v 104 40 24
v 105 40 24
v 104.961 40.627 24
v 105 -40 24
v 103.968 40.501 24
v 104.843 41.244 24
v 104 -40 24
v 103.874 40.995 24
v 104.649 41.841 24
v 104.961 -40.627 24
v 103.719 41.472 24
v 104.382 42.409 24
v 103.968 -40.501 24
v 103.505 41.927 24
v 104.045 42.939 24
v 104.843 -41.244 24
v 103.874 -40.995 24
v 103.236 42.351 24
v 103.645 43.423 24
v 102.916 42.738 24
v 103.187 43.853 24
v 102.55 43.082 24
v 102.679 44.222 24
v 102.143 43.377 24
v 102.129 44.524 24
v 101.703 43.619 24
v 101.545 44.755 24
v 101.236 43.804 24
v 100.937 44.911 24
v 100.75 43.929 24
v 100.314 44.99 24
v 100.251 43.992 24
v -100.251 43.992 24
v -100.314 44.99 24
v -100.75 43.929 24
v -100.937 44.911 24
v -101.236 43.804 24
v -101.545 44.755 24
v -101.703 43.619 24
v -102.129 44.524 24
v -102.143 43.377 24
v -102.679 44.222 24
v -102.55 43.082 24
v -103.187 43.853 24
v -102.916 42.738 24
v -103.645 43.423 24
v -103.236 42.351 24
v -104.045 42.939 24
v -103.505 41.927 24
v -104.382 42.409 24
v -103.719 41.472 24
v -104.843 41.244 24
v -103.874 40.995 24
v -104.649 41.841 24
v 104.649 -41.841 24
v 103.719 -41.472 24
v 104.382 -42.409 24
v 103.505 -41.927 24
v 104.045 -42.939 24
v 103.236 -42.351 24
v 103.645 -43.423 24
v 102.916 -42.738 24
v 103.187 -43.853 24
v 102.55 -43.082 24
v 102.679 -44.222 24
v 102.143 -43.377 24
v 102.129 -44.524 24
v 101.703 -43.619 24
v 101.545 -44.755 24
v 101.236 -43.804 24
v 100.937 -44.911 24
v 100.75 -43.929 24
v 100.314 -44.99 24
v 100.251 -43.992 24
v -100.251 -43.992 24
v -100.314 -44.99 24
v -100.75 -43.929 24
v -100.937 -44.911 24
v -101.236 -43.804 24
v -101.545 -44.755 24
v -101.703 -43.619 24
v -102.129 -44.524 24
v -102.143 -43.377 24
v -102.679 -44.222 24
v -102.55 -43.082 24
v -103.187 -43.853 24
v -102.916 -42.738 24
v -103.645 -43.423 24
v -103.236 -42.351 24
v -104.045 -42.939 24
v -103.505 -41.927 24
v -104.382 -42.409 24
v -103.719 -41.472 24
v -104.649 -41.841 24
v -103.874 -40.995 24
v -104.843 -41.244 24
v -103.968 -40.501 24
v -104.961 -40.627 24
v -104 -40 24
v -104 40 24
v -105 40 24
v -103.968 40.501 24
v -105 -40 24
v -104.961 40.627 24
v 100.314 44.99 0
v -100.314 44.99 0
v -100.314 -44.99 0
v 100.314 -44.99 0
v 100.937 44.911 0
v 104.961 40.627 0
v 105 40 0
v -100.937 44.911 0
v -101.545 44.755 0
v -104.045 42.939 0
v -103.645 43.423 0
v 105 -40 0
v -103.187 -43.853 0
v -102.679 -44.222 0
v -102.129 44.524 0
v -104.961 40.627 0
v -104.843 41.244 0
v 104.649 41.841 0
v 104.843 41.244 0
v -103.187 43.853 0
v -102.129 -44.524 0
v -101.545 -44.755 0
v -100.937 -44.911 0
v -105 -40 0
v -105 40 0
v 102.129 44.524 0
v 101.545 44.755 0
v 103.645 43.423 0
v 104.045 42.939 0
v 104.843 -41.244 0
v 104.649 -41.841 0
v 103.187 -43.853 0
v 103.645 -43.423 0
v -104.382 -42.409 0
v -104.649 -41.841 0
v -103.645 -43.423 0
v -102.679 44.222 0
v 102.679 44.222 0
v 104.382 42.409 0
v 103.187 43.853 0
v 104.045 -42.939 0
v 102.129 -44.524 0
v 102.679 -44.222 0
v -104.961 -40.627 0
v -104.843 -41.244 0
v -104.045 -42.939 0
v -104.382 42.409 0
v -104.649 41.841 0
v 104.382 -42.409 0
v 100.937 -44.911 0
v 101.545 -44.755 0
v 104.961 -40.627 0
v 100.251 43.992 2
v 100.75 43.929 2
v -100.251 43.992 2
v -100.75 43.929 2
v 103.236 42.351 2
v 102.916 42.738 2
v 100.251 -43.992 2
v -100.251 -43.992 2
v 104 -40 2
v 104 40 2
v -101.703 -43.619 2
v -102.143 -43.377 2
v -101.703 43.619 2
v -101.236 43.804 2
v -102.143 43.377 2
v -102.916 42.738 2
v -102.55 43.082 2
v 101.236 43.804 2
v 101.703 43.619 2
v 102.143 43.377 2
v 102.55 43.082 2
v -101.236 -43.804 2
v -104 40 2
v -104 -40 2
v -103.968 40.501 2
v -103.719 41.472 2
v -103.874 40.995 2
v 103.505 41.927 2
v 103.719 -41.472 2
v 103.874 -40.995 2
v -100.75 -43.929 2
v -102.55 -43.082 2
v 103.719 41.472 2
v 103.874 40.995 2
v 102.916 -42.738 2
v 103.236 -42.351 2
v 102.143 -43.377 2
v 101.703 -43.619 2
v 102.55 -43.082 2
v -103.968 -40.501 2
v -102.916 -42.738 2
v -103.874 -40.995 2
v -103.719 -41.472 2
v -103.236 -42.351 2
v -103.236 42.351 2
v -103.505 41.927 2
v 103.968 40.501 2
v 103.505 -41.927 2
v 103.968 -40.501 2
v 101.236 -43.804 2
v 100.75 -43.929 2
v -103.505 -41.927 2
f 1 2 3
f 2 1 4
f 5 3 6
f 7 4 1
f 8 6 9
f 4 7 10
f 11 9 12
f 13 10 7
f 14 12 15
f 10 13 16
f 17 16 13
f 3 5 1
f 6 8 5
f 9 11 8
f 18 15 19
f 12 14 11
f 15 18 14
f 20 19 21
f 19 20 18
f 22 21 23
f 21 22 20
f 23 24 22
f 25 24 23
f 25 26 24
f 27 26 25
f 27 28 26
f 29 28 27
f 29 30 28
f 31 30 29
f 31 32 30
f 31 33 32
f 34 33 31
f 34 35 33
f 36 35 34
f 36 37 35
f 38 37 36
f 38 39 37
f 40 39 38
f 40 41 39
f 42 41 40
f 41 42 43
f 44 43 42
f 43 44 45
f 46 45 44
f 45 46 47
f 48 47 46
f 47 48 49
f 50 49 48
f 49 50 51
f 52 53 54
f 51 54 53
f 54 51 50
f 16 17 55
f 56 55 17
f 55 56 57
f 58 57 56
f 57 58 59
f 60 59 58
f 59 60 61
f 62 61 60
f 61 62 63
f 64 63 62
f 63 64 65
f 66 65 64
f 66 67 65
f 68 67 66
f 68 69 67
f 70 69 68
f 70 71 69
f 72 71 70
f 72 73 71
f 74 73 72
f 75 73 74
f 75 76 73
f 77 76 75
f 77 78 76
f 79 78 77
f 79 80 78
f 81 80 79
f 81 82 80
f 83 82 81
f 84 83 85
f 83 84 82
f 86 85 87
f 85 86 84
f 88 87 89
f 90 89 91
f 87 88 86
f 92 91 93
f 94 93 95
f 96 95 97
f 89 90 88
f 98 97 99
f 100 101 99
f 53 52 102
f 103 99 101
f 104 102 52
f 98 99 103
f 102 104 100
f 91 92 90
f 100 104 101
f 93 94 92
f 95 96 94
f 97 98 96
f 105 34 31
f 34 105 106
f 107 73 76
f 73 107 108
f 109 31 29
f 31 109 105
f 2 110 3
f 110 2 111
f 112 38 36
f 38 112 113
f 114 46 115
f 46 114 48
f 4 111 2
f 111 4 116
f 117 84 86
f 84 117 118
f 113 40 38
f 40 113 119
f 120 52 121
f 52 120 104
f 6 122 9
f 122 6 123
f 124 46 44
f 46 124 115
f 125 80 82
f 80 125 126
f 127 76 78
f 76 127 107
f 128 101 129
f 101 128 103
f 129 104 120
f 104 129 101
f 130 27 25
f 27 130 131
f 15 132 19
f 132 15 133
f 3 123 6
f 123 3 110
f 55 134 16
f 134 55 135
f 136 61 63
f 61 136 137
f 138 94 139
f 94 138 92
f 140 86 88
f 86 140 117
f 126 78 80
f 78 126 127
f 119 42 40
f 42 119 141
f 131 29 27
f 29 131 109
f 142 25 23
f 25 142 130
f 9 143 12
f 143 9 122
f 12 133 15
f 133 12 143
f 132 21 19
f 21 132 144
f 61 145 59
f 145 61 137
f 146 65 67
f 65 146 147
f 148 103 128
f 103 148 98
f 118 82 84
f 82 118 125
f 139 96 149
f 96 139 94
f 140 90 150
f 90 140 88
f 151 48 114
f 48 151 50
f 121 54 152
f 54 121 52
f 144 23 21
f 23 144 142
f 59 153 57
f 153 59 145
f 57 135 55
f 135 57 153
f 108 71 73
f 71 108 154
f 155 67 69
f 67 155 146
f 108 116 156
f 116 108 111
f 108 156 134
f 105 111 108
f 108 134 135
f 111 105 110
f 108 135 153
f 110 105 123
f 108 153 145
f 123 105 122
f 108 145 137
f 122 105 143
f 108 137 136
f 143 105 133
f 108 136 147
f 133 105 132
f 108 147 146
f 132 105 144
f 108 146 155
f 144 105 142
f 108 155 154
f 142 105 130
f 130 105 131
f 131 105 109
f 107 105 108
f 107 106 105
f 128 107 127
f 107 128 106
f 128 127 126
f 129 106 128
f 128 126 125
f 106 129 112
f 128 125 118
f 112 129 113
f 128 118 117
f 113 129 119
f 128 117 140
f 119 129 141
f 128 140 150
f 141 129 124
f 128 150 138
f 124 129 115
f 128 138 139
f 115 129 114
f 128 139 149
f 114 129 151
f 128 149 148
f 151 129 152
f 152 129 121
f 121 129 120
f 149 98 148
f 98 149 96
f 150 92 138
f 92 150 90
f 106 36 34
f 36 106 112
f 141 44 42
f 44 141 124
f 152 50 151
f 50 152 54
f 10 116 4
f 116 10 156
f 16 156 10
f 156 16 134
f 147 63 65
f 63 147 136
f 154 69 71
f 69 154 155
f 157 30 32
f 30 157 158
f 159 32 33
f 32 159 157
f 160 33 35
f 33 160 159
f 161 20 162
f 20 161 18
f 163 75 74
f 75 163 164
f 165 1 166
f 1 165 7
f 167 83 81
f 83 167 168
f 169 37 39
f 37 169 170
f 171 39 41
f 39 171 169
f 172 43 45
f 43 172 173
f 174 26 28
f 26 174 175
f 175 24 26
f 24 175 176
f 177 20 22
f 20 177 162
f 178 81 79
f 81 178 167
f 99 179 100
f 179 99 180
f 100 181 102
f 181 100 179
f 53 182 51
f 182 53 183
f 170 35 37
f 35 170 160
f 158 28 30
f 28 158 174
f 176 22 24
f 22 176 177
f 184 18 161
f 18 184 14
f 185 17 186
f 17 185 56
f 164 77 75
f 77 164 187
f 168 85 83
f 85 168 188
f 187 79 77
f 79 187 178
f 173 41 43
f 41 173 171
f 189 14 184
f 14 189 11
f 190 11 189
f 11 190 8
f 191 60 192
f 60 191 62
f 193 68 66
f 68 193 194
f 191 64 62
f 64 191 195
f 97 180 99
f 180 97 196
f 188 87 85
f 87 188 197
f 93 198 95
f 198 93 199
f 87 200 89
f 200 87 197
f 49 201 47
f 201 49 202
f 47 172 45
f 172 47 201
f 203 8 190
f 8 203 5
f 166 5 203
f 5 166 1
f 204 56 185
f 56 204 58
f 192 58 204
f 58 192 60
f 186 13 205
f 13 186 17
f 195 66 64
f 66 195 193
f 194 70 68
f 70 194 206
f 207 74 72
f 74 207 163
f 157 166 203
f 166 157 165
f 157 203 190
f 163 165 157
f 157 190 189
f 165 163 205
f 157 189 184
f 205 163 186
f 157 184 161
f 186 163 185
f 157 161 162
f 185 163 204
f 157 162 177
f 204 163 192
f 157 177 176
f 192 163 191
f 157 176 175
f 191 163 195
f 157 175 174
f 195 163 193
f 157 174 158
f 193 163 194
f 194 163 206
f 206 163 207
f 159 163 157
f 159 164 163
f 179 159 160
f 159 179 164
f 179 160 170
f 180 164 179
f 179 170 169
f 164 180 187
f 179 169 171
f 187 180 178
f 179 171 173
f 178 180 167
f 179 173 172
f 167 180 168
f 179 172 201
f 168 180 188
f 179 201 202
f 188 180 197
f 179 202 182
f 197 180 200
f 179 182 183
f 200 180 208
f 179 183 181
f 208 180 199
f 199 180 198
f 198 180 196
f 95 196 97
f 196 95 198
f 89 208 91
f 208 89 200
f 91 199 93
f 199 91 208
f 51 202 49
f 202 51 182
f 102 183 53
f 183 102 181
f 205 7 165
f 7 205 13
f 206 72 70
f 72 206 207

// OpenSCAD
$fn = 50;


difference() {
	union() {
		hull() {
			translate(v = [-100.0000000000, 40.0000000000, 0]) {
				cylinder(h = 24, r = 5);
			}
			translate(v = [100.0000000000, 40.0000000000, 0]) {
				cylinder(h = 24, r = 5);
			}
			translate(v = [-100.0000000000, -40.0000000000, 0]) {
				cylinder(h = 24, r = 5);
			}
			translate(v = [100.0000000000, -40.0000000000, 0]) {
				cylinder(h = 24, r = 5);
			}
		}
	}
	union() {
		translate(v = [0, 0, 2]) {
			hull() {
				translate(v = [-100.0000000000, 40.0000000000, 0]) {
					cylinder(h = 22, r = 4);
				}
				translate(v = [100.0000000000, 40.0000000000, 0]) {
					cylinder(h = 22, r = 4);
				}
				translate(v = [-100.0000000000, -40.0000000000, 0]) {
					cylinder(h = 22, r = 4);
				}
				translate(v = [100.0000000000, -40.0000000000, 0]) {
					cylinder(h = 22, r = 4);
				}
			}
		}
	}
}
